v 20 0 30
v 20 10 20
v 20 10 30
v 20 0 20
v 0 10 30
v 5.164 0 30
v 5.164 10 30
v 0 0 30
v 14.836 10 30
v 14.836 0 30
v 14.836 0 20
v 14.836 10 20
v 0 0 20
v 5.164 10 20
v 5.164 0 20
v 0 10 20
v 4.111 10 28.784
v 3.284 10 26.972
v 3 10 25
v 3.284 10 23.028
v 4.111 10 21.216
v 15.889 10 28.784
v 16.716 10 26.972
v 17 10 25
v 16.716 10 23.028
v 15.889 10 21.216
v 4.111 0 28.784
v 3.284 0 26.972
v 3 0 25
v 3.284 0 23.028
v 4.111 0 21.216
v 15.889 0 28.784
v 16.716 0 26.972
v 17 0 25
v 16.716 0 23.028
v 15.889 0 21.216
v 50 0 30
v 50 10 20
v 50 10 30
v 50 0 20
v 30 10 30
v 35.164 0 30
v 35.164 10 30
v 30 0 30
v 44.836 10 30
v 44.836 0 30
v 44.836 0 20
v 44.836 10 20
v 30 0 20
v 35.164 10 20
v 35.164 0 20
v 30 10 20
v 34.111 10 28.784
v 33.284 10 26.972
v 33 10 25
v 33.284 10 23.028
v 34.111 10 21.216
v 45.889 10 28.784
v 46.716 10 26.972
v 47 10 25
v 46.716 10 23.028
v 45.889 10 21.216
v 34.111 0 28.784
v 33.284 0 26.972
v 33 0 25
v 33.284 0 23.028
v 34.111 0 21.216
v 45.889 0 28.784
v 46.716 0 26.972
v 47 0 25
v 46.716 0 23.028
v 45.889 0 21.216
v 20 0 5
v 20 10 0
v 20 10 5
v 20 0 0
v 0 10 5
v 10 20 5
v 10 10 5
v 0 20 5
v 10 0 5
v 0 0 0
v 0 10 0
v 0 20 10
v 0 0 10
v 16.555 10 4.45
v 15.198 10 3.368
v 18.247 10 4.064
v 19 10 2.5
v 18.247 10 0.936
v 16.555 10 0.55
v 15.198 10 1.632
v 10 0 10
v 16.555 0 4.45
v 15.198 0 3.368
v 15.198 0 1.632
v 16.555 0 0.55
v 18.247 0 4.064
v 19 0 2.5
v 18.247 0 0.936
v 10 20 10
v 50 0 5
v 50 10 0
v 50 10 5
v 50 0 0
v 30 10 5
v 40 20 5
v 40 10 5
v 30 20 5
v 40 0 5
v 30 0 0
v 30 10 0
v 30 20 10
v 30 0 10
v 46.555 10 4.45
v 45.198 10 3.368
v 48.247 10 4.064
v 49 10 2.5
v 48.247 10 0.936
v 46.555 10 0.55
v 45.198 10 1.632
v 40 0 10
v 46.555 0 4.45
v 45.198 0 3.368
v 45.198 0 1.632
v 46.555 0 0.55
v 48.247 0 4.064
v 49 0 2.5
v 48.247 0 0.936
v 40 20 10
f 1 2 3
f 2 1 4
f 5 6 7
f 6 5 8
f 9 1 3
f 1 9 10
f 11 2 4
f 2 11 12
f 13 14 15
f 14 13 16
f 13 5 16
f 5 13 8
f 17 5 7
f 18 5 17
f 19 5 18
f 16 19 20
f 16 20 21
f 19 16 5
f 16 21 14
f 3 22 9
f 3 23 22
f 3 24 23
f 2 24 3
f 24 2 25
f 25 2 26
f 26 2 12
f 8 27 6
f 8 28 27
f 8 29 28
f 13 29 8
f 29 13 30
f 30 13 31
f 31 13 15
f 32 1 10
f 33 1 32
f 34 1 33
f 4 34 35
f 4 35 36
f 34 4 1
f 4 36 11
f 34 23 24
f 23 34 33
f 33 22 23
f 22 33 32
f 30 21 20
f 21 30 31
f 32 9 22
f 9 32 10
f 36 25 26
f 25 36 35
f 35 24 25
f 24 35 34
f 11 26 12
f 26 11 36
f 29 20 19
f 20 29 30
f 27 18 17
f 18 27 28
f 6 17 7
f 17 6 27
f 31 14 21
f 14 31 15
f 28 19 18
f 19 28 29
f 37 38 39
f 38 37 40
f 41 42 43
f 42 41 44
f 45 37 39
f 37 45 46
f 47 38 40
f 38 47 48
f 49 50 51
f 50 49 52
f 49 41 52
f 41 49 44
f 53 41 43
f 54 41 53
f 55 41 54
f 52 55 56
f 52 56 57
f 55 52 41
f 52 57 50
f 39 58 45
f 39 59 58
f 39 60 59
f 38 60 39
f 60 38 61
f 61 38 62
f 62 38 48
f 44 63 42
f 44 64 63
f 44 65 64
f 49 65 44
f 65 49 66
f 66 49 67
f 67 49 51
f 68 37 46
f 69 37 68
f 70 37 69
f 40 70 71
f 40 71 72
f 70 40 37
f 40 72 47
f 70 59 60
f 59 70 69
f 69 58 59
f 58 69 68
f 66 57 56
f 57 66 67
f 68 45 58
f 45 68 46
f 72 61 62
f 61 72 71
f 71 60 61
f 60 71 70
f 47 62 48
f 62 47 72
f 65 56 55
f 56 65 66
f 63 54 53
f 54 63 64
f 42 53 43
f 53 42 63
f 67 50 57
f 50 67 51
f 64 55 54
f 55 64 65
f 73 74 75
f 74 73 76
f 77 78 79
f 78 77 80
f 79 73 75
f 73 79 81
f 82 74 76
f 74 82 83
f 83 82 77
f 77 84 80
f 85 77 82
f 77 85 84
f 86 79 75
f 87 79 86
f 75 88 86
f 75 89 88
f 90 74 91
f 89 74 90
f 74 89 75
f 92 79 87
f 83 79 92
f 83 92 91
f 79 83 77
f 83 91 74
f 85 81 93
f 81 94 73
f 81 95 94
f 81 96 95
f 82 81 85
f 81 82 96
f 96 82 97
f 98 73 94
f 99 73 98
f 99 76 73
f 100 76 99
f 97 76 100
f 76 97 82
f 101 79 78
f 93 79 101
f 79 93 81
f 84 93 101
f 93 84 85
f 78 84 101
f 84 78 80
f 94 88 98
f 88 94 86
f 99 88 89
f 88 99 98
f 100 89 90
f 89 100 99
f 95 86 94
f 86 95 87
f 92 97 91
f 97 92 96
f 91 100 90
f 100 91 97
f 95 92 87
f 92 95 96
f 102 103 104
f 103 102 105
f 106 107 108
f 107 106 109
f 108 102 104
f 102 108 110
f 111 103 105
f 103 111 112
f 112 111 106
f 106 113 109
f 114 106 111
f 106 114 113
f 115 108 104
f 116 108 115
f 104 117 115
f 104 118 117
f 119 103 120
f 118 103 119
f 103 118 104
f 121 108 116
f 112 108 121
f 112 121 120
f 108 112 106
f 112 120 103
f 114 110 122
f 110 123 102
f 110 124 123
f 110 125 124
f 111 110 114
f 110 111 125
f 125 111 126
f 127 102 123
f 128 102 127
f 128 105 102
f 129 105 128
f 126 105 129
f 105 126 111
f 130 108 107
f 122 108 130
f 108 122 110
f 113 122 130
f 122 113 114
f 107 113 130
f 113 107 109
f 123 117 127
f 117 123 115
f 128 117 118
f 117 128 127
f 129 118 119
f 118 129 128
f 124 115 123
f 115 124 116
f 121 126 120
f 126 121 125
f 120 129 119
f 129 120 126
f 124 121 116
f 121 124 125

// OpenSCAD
// Function to create an L-shaped bracket
module l_shaped_bracket() {
    difference() {
        union() {
            // Two rectangular arms forming the L-shape
            cube([20, 10, 5], center = false); // Horizontal arm
            translate([0, 0, 5])
                cube([10, 20, 5], center = false); // Vertical arm
        }
        // Circular holes in each arm (repositioned for alignment)
        translate([17, 5, 2.5]) // Adjusted position for horizontal arm hole
            rotate([90, 0, 0])
                cylinder(r = 2, h = 10, center = true);
        translate([5, 17, 2.5]) // Adjusted position for vertical arm hole
            rotate([90, 0, 0])
                cylinder(r = 2, h = 10, center = true);
        // Triangular cutout at the inner corner (enlarged and reshaped)
        translate([0, 0, 5])
            polyhedron(
                points = [[0, 0, 0], [15, 0, 0], [0, 15, 0], [0, 0, 5]], // Enlarged and reshaped
                faces = [[0, 1, 2], [0, 1, 3], [0, 2, 3], [1, 2, 3]]
            );
    }
}

// Function to create a C-shaped clamp
module c_shaped_clamp() {
    difference() {
        // Rectangular body
        cube([20, 10, 10], center = false);
        // Circular cutout in the center (enlarged and rounded)
        translate([10, 5, 5])
            rotate([90, 0, 0])
                cylinder(r = 7, h = 20, center = true); // Enlarged radius
        // Circular hole for fastening (repositioned further from the edge)
        translate([7, 5, 5]) // Adjusted position
            rotate([90, 0, 0])
                cylinder(r = 2, h = 10, center = true);
    }
}

// Assembly of the model
module assembly() {
    // Layer 1: Two C-shaped clamps
    translate([0, 0, 20])
        c_shaped_clamp();
    translate([30, 0, 20])
        c_shaped_clamp();

    // Layer 2: Two L-shaped brackets
    translate([0, 0, 0])
        l_shaped_bracket();
    translate([30, 0, 0])
        l_shaped_bracket();
}

// Render the assembly
assembly();
